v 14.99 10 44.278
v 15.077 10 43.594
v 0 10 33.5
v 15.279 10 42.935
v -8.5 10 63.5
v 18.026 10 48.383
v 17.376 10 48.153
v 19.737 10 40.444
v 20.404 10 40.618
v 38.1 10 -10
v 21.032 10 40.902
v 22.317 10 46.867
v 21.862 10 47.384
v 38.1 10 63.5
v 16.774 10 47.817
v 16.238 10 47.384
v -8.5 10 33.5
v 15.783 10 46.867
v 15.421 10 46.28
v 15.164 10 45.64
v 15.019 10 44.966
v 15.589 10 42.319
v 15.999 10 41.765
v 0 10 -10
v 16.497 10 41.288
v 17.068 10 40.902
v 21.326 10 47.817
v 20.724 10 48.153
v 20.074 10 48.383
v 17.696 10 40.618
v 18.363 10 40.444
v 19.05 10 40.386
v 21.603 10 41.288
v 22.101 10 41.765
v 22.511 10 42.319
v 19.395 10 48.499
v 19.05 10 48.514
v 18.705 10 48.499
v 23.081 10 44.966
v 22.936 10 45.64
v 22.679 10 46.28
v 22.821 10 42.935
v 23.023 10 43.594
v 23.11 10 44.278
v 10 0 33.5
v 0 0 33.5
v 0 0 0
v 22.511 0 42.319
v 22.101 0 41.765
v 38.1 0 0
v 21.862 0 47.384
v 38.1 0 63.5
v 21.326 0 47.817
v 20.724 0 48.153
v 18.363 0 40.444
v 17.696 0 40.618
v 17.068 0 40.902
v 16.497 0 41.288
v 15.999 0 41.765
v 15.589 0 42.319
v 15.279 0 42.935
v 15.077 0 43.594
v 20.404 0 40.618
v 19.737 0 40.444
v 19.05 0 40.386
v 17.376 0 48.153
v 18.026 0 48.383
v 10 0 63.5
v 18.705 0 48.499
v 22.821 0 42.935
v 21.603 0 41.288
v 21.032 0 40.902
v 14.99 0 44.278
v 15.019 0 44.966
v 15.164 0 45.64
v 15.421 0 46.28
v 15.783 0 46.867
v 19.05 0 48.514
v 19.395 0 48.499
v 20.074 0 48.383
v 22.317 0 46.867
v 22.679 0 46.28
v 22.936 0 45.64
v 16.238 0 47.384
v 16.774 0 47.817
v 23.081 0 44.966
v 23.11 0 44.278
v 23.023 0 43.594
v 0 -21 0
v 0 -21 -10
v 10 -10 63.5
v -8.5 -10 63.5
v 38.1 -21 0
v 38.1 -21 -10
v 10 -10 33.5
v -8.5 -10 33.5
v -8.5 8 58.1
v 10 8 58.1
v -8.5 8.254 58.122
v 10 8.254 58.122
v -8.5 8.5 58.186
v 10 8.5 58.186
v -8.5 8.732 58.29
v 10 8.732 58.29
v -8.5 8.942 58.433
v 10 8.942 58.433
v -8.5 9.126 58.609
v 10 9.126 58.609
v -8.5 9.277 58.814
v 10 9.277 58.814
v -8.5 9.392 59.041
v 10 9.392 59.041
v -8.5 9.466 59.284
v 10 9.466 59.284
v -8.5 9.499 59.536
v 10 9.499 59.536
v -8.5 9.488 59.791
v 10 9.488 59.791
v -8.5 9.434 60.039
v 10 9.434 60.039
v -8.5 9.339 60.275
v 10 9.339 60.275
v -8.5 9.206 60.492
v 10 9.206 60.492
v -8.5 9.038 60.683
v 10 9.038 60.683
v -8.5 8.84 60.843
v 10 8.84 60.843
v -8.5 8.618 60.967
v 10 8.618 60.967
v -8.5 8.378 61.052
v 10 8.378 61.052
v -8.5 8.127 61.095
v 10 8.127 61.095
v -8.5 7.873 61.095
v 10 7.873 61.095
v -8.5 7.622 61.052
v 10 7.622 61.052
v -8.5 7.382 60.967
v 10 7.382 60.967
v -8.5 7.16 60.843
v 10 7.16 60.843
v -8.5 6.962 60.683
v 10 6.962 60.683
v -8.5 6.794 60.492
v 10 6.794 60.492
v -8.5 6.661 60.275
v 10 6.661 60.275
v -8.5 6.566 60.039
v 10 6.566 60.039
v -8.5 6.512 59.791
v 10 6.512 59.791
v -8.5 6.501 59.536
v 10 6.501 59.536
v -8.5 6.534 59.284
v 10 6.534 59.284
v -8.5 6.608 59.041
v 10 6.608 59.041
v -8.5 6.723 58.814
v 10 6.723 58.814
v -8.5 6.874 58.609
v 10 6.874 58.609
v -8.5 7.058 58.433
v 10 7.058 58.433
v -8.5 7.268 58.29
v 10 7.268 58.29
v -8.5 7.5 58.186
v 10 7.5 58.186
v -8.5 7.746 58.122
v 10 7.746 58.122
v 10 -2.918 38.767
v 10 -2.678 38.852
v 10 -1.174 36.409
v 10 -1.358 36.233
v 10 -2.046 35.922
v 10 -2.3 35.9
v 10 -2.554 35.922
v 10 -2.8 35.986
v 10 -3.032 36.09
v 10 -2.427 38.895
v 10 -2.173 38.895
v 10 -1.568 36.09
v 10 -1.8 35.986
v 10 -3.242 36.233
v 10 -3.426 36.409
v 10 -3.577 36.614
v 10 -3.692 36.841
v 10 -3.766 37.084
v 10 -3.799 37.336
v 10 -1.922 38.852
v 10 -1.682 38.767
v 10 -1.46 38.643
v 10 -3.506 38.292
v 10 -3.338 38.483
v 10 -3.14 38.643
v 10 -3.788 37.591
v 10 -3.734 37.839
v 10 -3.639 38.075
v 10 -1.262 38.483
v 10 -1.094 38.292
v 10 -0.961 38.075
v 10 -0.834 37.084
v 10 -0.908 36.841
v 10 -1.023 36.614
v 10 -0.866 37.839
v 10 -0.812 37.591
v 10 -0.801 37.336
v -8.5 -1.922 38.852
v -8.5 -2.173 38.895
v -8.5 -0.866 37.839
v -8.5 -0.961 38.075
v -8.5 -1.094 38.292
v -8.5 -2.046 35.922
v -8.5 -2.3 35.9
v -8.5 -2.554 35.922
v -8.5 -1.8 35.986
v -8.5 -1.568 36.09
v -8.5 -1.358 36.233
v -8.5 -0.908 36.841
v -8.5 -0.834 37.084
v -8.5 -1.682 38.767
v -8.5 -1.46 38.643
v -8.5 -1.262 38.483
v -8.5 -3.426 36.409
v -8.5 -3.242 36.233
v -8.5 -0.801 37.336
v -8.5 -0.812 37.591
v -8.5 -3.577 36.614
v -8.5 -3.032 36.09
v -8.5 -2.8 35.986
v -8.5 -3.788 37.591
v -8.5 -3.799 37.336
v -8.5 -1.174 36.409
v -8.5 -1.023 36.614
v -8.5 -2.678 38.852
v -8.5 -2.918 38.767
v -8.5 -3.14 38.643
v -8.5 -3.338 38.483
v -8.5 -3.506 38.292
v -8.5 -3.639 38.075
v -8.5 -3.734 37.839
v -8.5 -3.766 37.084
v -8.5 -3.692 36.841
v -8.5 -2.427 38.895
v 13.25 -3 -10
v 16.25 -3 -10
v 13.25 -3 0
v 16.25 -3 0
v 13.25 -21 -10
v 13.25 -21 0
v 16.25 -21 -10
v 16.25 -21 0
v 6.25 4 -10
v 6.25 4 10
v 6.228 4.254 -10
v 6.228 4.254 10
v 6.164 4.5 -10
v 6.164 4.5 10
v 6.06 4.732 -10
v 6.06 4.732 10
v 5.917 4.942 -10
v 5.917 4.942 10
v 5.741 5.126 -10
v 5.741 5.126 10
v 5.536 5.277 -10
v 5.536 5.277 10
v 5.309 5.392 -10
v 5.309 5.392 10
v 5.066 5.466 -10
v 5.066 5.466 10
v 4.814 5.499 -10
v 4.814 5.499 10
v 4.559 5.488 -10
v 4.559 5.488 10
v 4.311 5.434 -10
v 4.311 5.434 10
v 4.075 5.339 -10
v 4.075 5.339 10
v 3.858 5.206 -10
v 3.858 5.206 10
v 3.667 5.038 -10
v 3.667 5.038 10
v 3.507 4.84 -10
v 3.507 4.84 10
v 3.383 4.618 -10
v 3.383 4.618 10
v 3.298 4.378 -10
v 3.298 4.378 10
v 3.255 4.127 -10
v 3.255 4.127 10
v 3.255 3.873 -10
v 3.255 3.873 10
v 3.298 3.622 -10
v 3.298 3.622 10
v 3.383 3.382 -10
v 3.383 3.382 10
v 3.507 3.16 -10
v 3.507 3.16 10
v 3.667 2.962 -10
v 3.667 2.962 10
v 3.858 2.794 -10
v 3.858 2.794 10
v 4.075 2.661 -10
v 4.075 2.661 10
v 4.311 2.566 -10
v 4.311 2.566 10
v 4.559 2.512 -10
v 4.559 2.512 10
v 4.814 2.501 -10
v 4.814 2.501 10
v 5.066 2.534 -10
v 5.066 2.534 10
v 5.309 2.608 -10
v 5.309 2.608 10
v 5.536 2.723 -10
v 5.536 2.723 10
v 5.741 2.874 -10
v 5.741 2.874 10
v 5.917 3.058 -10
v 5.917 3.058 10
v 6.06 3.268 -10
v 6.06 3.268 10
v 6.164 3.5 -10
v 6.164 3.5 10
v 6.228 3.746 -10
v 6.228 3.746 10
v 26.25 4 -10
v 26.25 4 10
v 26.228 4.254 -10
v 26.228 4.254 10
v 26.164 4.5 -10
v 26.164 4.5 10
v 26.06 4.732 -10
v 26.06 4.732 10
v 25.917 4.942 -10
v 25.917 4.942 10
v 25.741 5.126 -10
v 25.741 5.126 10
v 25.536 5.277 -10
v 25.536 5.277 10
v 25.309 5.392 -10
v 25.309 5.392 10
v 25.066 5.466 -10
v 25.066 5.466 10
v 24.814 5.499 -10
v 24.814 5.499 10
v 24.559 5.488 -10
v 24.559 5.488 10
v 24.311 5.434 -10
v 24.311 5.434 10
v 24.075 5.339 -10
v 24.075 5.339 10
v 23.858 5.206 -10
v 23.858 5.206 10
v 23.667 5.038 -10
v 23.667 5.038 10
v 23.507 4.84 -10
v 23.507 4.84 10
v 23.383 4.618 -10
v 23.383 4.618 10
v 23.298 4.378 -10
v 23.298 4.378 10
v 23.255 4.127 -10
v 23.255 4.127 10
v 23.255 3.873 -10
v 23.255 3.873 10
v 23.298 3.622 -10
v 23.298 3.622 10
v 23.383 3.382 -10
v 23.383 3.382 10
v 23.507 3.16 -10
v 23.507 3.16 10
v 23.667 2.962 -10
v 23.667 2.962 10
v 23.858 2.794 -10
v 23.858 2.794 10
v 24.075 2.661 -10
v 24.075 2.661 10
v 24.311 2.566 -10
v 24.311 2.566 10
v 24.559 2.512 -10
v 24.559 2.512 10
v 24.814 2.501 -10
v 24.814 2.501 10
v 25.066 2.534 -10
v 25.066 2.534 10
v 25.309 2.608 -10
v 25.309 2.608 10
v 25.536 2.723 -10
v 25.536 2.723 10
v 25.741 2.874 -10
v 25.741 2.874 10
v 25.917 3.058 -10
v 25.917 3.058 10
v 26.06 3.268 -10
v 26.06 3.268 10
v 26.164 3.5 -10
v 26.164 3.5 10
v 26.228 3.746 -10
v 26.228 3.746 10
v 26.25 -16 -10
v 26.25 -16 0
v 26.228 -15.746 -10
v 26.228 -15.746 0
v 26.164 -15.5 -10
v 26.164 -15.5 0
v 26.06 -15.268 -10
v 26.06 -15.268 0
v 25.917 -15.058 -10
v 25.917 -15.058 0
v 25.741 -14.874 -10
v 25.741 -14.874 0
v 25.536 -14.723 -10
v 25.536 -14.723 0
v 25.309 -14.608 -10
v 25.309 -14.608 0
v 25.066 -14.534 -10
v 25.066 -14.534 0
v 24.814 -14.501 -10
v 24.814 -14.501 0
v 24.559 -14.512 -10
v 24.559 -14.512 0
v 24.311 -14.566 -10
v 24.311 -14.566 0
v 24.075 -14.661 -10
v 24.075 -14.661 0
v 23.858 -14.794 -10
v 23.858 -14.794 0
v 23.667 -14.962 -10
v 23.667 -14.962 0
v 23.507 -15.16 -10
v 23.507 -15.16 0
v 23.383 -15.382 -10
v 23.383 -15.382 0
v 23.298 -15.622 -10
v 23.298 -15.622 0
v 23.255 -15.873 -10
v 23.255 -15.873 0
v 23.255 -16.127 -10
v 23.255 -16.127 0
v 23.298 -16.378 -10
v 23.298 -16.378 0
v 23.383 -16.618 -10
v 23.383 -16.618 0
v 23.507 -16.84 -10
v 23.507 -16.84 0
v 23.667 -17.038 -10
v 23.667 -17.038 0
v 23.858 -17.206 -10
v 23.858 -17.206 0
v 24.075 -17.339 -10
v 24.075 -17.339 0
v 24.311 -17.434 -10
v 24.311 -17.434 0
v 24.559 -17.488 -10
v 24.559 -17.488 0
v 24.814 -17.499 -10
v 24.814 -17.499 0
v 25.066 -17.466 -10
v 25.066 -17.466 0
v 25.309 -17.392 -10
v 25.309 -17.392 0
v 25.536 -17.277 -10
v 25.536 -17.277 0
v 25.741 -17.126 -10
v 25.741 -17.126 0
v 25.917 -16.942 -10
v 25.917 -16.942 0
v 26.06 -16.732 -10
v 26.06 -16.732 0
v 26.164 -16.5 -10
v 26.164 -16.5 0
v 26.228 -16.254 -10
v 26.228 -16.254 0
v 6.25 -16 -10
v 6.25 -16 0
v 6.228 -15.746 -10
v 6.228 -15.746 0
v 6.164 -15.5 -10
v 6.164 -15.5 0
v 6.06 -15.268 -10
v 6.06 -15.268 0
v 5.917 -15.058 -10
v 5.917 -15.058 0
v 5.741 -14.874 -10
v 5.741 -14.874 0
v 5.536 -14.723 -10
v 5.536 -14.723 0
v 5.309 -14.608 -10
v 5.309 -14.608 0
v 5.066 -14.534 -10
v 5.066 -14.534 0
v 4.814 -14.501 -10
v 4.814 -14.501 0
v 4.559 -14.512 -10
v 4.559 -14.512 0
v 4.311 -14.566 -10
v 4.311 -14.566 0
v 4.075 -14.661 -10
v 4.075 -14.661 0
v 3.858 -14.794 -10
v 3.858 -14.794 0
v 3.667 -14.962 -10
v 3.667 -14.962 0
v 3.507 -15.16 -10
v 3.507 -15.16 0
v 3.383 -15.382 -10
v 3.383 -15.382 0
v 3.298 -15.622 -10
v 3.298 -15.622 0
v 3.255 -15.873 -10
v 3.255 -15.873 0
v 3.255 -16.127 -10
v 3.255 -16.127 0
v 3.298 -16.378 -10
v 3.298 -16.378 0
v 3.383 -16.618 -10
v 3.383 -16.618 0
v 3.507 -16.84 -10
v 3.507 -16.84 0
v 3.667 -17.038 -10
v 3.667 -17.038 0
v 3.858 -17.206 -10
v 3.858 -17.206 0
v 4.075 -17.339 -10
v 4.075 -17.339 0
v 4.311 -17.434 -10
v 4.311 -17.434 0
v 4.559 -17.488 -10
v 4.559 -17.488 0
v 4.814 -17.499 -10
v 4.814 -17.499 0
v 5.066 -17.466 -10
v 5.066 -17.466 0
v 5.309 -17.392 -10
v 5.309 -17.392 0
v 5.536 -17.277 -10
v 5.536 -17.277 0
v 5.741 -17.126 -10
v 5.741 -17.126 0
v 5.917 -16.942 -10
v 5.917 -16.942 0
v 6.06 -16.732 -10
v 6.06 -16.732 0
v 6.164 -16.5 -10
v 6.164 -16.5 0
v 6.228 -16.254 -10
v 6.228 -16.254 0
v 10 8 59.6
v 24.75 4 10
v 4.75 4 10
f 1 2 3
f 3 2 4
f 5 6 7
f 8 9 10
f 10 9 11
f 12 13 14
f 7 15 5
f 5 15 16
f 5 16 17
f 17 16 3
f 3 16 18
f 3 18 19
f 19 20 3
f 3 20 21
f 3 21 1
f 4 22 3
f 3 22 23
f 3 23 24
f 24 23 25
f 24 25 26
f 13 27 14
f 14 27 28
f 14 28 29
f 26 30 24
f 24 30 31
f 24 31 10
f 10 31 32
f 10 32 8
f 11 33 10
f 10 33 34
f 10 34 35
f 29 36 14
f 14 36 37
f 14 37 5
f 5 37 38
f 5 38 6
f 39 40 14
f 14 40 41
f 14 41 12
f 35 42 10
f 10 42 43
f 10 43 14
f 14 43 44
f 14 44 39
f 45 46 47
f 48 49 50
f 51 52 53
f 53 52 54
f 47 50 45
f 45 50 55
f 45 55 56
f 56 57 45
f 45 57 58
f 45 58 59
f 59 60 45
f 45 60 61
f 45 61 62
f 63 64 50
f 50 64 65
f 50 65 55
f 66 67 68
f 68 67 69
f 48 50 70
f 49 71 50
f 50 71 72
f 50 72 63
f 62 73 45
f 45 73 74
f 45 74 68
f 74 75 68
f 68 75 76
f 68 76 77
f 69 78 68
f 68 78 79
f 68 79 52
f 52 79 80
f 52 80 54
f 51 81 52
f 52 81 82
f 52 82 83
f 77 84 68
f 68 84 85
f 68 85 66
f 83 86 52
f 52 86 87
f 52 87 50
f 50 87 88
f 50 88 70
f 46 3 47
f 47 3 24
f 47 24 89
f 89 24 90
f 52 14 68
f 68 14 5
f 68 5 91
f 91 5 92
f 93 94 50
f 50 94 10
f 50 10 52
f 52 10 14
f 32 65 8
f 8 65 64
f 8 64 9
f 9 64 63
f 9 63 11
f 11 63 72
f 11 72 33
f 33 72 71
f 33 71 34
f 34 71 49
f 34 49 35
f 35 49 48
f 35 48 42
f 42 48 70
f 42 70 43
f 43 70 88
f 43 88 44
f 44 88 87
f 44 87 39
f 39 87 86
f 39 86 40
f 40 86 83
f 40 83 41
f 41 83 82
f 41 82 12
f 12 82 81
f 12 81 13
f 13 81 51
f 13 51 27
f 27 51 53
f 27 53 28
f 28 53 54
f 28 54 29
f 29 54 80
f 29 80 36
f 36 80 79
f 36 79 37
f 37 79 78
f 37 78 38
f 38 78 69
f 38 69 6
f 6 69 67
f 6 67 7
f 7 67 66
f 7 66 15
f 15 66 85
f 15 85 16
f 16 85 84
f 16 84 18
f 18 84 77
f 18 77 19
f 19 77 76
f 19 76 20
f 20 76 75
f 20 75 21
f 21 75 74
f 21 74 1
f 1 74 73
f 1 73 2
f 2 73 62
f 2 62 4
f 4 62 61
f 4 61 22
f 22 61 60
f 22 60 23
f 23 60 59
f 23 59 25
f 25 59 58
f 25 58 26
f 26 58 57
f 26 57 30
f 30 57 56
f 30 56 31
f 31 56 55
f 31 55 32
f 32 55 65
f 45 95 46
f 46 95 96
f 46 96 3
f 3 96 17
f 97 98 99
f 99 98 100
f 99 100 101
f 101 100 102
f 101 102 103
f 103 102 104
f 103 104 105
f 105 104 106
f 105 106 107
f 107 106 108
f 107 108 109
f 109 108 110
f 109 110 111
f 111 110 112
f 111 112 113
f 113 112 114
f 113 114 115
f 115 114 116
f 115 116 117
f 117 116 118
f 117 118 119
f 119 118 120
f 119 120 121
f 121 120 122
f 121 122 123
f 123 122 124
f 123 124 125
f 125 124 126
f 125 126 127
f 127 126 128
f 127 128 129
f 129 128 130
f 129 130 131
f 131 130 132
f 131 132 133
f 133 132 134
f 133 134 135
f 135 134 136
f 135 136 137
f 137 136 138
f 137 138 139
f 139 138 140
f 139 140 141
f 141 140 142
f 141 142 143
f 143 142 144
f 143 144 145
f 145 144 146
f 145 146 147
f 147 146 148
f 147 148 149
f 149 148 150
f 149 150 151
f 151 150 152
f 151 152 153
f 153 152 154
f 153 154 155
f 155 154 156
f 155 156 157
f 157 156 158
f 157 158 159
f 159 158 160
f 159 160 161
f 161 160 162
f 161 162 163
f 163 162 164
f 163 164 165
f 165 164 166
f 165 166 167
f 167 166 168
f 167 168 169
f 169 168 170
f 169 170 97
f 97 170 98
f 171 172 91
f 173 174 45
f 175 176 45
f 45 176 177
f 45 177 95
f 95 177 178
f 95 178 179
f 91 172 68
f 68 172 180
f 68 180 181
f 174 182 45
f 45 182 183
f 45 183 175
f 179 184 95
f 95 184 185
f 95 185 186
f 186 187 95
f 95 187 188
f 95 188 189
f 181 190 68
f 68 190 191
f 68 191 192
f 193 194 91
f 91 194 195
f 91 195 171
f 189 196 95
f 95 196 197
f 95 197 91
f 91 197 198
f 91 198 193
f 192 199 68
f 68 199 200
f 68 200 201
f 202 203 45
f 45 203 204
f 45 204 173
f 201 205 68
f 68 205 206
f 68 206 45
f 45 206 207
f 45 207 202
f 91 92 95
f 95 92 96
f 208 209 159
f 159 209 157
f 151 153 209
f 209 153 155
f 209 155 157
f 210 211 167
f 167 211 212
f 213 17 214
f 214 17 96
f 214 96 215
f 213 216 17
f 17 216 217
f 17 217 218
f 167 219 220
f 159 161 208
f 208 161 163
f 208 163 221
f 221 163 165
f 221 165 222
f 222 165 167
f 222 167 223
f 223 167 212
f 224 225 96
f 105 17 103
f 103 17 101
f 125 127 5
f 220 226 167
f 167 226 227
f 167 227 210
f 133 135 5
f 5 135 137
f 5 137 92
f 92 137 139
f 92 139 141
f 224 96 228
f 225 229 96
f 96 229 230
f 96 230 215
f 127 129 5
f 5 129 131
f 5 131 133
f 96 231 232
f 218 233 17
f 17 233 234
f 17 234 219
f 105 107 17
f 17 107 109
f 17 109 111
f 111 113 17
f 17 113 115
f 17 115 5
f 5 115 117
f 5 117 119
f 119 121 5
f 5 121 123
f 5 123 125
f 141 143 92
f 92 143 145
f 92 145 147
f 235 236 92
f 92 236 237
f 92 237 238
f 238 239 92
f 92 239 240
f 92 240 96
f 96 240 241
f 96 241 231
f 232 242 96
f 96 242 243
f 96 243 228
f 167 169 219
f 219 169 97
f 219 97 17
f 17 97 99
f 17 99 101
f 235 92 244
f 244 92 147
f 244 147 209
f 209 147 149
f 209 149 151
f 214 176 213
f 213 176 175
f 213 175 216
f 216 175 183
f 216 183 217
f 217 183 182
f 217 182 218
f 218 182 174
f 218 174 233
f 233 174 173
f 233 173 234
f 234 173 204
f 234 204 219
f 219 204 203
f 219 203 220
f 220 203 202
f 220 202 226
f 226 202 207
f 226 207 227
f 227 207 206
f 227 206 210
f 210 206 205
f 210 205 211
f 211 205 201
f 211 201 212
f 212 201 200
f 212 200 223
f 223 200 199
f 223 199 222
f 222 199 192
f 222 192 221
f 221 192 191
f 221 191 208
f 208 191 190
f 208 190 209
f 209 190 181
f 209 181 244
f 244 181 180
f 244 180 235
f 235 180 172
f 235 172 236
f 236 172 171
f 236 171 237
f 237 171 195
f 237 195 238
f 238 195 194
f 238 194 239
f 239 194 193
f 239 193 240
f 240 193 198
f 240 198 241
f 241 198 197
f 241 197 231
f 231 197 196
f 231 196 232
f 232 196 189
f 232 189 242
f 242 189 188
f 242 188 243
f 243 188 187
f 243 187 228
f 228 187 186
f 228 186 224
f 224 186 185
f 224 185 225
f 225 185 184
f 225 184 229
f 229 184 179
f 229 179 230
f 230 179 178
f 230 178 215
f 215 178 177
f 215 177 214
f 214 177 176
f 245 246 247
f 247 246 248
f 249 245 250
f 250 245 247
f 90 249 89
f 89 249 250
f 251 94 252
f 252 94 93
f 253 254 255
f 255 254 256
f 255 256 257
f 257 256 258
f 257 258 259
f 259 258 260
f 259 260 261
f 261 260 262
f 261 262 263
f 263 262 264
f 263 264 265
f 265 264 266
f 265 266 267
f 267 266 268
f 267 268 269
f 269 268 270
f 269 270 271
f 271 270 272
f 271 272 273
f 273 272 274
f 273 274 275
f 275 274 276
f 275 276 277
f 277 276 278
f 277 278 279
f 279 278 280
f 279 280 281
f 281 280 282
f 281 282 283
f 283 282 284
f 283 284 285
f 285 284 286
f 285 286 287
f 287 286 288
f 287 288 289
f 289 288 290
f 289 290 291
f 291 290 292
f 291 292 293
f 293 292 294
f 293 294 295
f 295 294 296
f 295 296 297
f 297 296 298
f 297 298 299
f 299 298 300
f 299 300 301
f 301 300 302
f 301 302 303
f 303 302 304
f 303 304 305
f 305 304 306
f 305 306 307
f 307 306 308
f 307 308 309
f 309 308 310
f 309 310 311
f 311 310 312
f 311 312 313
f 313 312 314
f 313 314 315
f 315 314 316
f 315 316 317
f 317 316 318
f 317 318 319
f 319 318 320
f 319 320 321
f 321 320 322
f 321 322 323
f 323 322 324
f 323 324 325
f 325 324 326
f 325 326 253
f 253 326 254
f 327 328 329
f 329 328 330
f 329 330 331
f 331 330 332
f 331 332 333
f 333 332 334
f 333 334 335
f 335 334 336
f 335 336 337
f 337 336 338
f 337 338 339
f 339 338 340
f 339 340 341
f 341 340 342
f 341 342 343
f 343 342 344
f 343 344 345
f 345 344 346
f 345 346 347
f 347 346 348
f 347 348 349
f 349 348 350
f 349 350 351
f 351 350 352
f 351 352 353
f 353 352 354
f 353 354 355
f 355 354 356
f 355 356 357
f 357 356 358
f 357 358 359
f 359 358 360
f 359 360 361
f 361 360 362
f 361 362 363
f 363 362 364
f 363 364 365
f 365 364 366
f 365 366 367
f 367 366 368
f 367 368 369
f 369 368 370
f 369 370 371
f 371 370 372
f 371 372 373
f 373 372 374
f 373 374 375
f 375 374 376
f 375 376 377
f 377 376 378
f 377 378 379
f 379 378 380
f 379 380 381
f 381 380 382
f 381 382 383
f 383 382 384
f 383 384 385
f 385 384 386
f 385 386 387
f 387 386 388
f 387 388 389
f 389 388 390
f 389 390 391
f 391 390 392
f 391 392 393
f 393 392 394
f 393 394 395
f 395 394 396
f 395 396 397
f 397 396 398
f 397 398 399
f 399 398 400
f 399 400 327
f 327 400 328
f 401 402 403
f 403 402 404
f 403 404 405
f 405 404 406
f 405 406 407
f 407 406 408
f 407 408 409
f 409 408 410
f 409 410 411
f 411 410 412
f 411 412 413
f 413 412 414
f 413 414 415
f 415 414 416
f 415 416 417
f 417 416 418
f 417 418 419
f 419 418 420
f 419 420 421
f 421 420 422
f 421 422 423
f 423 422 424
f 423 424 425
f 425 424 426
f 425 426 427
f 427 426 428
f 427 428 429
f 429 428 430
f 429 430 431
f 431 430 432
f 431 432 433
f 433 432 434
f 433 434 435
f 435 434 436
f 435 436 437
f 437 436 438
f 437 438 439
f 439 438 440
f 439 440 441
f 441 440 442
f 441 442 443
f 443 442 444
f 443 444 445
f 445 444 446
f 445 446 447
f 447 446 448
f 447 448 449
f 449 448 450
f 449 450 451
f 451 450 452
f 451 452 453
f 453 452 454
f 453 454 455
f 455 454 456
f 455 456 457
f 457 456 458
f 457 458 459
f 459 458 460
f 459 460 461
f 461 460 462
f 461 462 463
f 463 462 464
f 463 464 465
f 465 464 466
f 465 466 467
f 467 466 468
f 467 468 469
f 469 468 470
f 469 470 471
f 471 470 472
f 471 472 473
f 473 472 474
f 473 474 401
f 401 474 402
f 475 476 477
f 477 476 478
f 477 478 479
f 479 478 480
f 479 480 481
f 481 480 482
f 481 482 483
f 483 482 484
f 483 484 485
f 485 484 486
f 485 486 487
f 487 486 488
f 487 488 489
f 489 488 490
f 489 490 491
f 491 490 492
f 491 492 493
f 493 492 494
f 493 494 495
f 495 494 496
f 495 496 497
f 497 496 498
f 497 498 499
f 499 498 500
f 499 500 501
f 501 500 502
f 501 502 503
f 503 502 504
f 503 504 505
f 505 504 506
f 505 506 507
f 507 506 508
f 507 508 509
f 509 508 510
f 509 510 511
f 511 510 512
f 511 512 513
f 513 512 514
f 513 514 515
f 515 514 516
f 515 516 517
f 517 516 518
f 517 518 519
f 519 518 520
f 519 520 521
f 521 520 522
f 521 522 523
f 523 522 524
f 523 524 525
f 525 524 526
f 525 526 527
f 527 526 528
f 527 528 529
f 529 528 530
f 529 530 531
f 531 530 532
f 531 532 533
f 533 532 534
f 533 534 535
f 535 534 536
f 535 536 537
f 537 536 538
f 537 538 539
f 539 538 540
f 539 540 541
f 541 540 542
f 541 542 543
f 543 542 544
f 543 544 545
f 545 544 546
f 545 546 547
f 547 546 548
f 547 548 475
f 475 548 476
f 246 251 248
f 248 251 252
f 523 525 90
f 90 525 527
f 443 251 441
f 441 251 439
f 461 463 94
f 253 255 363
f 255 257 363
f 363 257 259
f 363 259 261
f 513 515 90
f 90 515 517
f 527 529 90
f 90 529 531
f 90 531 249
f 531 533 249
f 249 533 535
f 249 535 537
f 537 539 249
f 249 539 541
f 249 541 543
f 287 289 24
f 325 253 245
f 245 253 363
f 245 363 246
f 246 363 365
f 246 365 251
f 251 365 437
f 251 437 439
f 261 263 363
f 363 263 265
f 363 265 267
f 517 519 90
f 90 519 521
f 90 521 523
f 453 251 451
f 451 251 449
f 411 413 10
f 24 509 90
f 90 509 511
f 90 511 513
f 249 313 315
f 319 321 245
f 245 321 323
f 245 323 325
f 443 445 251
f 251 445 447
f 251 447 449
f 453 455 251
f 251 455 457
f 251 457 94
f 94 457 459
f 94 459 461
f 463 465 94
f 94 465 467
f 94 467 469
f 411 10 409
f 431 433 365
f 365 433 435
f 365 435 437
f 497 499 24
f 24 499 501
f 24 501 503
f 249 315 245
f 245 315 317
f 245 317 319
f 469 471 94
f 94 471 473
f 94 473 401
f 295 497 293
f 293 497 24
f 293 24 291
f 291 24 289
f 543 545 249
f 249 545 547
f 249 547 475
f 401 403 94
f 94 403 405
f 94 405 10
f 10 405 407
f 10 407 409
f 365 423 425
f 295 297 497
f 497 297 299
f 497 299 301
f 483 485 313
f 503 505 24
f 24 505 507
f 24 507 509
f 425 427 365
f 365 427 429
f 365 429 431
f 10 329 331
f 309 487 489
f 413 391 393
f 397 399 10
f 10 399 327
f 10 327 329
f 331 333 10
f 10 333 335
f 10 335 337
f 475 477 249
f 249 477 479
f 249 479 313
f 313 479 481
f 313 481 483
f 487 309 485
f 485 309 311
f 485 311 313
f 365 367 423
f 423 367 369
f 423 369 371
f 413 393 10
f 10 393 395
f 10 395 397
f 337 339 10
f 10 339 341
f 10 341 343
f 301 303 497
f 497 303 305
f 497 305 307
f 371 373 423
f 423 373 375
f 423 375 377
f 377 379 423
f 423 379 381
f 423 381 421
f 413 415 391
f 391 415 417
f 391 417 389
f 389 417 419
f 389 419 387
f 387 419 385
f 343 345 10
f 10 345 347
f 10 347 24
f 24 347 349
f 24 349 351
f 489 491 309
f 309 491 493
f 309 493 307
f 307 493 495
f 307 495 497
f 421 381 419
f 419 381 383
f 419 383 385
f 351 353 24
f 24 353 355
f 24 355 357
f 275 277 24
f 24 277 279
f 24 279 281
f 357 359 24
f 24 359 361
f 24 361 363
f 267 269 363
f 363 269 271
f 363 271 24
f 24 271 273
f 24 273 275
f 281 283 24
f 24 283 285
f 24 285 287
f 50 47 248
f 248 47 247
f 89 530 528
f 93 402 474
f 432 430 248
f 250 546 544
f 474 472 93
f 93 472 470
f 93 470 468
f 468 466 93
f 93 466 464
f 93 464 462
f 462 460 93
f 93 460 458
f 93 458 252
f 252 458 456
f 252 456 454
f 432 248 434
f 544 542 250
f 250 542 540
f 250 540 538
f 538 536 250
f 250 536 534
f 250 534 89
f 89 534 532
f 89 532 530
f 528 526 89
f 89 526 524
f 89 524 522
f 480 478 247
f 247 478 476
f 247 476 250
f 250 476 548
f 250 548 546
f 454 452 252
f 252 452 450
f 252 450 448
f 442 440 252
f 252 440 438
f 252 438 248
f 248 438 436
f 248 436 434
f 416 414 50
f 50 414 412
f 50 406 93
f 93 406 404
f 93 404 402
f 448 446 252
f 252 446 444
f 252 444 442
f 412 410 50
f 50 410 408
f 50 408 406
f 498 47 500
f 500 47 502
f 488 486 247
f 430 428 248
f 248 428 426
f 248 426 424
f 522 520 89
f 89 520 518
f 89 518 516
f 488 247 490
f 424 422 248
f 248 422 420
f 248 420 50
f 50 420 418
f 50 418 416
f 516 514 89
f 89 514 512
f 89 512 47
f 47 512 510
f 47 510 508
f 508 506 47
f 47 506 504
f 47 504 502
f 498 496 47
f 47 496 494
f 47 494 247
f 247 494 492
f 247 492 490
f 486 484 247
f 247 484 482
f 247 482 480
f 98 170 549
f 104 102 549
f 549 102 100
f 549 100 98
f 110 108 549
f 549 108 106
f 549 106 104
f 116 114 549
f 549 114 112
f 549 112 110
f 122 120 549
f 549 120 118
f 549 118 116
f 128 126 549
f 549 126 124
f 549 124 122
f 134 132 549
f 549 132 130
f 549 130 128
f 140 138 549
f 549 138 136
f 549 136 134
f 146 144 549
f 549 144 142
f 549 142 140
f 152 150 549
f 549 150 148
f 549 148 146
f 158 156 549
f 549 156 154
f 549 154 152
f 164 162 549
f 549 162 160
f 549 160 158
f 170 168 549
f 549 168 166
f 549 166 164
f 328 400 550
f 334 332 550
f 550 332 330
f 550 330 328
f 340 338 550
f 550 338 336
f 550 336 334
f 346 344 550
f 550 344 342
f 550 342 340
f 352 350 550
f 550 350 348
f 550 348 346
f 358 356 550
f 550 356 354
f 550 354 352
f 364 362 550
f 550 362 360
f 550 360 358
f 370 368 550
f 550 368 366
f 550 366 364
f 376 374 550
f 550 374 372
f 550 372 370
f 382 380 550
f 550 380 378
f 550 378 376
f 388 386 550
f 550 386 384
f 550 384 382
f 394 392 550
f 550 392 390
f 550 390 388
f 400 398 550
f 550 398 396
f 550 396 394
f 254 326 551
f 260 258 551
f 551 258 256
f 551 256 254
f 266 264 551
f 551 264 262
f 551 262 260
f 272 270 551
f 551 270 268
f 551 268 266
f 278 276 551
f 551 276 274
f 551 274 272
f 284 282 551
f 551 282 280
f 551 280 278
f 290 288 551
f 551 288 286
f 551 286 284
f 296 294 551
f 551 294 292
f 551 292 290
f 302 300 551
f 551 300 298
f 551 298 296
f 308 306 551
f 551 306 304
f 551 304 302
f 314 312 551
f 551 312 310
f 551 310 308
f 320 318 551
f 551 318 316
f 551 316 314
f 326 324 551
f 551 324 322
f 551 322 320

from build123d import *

# Parameters (mm, degrees)
SKETCH1_W                = 38.1
SKETCH1_H                = 63.5
SKETCH1_R                = 4.064
BOSS_EXTRUDE1_DEPTH      = 10
BOSS_EXTRUDE2_DEPTH      = 10
BOSS_EXTRUDE2_DEPTH_BACK = 8.5
SKETCH2_R                = 1.5
SKETCH3_R                = 1.5
BOSS_EXTRUDE3_DEPTH      = 10
SKETCH2_2_R              = 1.5
CUT_EXTRUDE1_DEPTH       = 10
CUT_EXTRUDE2_START       = 10
SKETCH3_2_R              = 1.5
CUT_EXTRUDE2_DEPTH       = 10


with BuildPart() as part:
    # Sketch1 → Boss-Extrude1 (new body)
    with BuildSketch(Plane(origin=(0, 0, 0), x_dir=(1, 0, 0), z_dir=(0, 1, 0))):
        with Locations((19.05, -31.75)):
            Rectangle(SKETCH1_W, SKETCH1_H)
        with Locations((19.05, -44.45)):
            Circle(SKETCH1_R, mode=Mode.SUBTRACT)
    extrude(amount=BOSS_EXTRUDE1_DEPTH)

    # Sketch2 → Boss-Extrude2 (add, two sides: drawn at the far end of the back side and taken through both)
    with BuildSketch(Plane(origin=(0, 0, 0), x_dir=(0, 0, -1), z_dir=(1, 0, 0)).offset(-BOSS_EXTRUDE2_DEPTH_BACK)):
        Polygon((-33.5, 0), (-33.5, -10), (-63.5, -10), (-63.5, 0), (-63.5, 10), (-33.5, 10), align=None)
        with Locations((-59.6, 8)):
            Circle(SKETCH2_R, mode=Mode.SUBTRACT)
        with Locations((-37.4, -2.3)):
            Circle(SKETCH2_R, mode=Mode.SUBTRACT)
    extrude(amount=BOSS_EXTRUDE2_DEPTH + BOSS_EXTRUDE2_DEPTH_BACK)

    # Sketch3 → Boss-Extrude3 (add)
    with BuildSketch(Plane.XY):
        Polygon((13.25, -21), (13.25, -3), (16.25, -3), (16.25, -21), (38.1, -21), (38.1, 10), (0, 10), (0, -21), align=None)
        with Locations((4.75, -16)):
            Circle(SKETCH3_R, mode=Mode.SUBTRACT)
        with Locations((24.75, -16)):
            Circle(SKETCH3_R, mode=Mode.SUBTRACT)
        with Locations((4.75, 4)):
            Circle(SKETCH3_R, mode=Mode.SUBTRACT)
        with Locations((24.75, 4)):
            Circle(SKETCH3_R, mode=Mode.SUBTRACT)
    extrude(amount=-BOSS_EXTRUDE3_DEPTH)

    # Sketch2<2> → Cut-Extrude1 (cut)
    with BuildSketch(Plane(origin=(0, 0, 0), x_dir=(0, 0, -1), z_dir=(1, 0, 0))):
        with Locations((-59.6, 8)):
            Circle(SKETCH2_2_R)
    extrude(amount=CUT_EXTRUDE1_DEPTH, mode=Mode.SUBTRACT)

    # Sketch3<2> → Cut-Extrude2 (cut)
    with BuildSketch(Plane.XY.offset(CUT_EXTRUDE2_START)):
        with Locations((4.75, 4)):
            Circle(SKETCH3_2_R)
        with Locations((24.75, 4)):
            Circle(SKETCH3_2_R)
    extrude(amount=-CUT_EXTRUDE2_DEPTH, mode=Mode.SUBTRACT)


solid = part.part
